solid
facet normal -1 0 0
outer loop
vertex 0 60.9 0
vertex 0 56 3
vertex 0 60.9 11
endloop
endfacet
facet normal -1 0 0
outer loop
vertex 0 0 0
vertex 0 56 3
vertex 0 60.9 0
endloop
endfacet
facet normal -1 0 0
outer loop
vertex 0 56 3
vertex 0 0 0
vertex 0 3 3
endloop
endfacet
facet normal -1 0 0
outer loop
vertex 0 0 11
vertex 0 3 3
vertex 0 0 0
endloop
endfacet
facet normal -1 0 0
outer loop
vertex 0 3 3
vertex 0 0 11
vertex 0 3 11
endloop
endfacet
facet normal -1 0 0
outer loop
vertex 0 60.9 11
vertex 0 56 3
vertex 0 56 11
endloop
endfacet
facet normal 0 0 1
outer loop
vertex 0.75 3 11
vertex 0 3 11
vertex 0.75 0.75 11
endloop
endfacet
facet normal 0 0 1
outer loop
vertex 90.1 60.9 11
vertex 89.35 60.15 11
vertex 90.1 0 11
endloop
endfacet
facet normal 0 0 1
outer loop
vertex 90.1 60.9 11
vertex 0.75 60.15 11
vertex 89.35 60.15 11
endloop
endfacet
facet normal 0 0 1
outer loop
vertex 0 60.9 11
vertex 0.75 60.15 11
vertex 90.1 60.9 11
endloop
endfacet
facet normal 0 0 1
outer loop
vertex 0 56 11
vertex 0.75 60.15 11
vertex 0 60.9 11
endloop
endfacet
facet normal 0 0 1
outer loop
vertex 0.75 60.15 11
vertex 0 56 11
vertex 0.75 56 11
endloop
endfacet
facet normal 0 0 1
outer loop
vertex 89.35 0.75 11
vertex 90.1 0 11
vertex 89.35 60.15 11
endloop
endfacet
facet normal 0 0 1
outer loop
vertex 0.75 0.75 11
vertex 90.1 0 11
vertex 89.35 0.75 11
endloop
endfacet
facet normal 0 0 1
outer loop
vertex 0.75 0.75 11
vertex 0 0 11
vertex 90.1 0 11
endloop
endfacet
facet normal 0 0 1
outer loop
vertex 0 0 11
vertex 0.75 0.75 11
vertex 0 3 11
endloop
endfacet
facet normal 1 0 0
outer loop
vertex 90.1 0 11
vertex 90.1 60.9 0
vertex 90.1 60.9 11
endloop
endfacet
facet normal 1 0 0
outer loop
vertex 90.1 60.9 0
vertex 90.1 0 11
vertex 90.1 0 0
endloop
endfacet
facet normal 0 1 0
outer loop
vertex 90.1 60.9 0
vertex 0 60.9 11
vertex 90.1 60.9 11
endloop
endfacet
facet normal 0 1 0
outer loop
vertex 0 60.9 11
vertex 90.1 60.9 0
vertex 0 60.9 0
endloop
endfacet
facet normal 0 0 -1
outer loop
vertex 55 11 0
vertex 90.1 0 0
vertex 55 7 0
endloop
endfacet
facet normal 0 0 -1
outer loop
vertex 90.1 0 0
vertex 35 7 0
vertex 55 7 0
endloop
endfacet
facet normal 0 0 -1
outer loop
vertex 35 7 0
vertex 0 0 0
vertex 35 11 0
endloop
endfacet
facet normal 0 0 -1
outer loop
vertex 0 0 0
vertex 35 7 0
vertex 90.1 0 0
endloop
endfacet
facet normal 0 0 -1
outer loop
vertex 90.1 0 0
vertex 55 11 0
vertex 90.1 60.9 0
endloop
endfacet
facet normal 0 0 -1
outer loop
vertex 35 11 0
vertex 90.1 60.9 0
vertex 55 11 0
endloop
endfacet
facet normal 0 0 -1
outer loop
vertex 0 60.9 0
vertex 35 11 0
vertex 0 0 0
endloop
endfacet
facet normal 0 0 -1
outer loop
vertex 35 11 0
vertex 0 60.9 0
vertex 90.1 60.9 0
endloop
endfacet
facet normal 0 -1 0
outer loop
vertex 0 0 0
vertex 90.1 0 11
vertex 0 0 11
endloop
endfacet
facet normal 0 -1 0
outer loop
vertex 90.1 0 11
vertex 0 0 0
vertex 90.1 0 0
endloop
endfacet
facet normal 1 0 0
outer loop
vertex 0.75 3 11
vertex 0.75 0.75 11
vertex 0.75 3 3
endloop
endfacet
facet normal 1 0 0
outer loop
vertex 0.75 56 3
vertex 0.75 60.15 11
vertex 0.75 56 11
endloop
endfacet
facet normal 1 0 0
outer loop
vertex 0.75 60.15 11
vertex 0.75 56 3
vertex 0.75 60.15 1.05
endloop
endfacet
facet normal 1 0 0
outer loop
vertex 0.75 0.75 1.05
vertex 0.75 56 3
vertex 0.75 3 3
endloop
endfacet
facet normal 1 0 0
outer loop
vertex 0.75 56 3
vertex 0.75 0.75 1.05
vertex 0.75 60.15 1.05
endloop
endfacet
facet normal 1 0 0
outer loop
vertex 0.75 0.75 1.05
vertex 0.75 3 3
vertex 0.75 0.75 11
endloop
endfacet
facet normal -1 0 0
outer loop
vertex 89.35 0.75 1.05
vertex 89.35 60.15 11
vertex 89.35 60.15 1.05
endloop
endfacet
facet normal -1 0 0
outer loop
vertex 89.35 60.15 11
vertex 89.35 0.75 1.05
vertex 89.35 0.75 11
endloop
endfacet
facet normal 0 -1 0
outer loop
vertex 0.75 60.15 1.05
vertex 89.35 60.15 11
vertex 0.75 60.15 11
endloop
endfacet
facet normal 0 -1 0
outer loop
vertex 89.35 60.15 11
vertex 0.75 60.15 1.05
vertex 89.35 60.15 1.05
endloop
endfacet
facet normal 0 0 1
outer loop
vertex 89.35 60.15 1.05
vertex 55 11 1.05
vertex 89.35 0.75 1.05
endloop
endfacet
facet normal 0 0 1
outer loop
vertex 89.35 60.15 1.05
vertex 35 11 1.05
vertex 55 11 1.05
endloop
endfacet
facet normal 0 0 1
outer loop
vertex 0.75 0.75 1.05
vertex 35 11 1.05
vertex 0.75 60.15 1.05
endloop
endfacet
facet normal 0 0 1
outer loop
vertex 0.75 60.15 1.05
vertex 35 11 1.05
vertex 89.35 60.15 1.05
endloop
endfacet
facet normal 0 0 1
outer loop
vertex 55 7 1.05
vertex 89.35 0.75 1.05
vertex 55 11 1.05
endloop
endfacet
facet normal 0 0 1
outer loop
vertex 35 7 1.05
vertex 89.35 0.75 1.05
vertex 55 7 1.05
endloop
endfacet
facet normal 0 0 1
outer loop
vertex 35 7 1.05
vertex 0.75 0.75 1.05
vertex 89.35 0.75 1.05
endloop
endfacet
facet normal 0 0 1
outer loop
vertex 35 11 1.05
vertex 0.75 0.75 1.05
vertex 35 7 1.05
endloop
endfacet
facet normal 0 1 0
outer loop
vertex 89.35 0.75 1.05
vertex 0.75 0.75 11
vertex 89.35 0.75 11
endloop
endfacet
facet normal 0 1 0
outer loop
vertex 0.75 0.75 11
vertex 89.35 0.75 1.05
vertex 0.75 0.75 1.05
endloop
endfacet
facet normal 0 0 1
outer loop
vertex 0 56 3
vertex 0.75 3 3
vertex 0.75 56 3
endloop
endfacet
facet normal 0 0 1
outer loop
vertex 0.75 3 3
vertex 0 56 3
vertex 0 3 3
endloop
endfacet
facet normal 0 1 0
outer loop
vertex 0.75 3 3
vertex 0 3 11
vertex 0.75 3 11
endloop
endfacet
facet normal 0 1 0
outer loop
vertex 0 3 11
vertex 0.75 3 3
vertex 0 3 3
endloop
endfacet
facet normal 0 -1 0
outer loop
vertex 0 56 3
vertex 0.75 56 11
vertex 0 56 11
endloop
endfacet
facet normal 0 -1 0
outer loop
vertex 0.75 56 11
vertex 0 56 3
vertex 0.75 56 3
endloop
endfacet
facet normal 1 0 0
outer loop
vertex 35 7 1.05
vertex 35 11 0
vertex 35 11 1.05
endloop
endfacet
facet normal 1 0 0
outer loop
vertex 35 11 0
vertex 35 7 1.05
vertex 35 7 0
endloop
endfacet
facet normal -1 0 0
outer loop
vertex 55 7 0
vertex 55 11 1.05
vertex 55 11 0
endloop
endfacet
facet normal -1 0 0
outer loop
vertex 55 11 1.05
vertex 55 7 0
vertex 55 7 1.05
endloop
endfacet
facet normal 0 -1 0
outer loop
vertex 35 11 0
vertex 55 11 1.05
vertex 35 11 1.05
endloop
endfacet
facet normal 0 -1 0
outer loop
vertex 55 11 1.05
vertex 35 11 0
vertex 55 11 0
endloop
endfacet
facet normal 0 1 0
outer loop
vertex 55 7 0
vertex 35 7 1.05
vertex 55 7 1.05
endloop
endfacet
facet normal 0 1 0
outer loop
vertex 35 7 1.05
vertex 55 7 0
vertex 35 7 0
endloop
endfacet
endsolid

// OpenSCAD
module base_top() {
	pi_x = 85;
	sd_x = 1.5;
	sd_y = 21;
	sd_z = 1;
	plug_x = 2;

	pi_y = 57.5;

	pi_z = 23.0;

	wall_thickness = .75;
	pi_x_clearance = .2;
	pi_y_clearance = .2;
	pi_z_clearance = .2;

	sd_x_clearance = .2;
	sd_y_clearance = .2;
	sd_z_clearance = 1;

	floor_width = 1;

	//Double the - clearance for the SD
	bottom_base_block_x = sd_x + pi_x + wall_thickness*2 + pi_x_clearance*2+ sd_x_clearance;

	bottom_base_block_y = pi_y + pi_y_clearance*2 + wall_thickness*2;
	bottom_base_block_z = floor_width + pi_z + pi_z_clearance;

	top_base_block_x = bottom_base_block_x + 1.5;

	top_base_block_y = bottom_base_block_y + 1.5;

	top_base_block_z = 10 + floor_width;

	difference(){
			cube([top_base_block_x,top_base_block_y, top_base_block_z]);

			translate([1.5/2,1.5/2,floor_width+.05])
			cube([bottom_base_block_x,bottom_base_block_y, 10]);

			translate([-2,3,3]) {
				cube([20, 53, 20]);
			}

			translate([35,7,-0.5]) cube([20, 4, 2]);
	}
}

base_top();
